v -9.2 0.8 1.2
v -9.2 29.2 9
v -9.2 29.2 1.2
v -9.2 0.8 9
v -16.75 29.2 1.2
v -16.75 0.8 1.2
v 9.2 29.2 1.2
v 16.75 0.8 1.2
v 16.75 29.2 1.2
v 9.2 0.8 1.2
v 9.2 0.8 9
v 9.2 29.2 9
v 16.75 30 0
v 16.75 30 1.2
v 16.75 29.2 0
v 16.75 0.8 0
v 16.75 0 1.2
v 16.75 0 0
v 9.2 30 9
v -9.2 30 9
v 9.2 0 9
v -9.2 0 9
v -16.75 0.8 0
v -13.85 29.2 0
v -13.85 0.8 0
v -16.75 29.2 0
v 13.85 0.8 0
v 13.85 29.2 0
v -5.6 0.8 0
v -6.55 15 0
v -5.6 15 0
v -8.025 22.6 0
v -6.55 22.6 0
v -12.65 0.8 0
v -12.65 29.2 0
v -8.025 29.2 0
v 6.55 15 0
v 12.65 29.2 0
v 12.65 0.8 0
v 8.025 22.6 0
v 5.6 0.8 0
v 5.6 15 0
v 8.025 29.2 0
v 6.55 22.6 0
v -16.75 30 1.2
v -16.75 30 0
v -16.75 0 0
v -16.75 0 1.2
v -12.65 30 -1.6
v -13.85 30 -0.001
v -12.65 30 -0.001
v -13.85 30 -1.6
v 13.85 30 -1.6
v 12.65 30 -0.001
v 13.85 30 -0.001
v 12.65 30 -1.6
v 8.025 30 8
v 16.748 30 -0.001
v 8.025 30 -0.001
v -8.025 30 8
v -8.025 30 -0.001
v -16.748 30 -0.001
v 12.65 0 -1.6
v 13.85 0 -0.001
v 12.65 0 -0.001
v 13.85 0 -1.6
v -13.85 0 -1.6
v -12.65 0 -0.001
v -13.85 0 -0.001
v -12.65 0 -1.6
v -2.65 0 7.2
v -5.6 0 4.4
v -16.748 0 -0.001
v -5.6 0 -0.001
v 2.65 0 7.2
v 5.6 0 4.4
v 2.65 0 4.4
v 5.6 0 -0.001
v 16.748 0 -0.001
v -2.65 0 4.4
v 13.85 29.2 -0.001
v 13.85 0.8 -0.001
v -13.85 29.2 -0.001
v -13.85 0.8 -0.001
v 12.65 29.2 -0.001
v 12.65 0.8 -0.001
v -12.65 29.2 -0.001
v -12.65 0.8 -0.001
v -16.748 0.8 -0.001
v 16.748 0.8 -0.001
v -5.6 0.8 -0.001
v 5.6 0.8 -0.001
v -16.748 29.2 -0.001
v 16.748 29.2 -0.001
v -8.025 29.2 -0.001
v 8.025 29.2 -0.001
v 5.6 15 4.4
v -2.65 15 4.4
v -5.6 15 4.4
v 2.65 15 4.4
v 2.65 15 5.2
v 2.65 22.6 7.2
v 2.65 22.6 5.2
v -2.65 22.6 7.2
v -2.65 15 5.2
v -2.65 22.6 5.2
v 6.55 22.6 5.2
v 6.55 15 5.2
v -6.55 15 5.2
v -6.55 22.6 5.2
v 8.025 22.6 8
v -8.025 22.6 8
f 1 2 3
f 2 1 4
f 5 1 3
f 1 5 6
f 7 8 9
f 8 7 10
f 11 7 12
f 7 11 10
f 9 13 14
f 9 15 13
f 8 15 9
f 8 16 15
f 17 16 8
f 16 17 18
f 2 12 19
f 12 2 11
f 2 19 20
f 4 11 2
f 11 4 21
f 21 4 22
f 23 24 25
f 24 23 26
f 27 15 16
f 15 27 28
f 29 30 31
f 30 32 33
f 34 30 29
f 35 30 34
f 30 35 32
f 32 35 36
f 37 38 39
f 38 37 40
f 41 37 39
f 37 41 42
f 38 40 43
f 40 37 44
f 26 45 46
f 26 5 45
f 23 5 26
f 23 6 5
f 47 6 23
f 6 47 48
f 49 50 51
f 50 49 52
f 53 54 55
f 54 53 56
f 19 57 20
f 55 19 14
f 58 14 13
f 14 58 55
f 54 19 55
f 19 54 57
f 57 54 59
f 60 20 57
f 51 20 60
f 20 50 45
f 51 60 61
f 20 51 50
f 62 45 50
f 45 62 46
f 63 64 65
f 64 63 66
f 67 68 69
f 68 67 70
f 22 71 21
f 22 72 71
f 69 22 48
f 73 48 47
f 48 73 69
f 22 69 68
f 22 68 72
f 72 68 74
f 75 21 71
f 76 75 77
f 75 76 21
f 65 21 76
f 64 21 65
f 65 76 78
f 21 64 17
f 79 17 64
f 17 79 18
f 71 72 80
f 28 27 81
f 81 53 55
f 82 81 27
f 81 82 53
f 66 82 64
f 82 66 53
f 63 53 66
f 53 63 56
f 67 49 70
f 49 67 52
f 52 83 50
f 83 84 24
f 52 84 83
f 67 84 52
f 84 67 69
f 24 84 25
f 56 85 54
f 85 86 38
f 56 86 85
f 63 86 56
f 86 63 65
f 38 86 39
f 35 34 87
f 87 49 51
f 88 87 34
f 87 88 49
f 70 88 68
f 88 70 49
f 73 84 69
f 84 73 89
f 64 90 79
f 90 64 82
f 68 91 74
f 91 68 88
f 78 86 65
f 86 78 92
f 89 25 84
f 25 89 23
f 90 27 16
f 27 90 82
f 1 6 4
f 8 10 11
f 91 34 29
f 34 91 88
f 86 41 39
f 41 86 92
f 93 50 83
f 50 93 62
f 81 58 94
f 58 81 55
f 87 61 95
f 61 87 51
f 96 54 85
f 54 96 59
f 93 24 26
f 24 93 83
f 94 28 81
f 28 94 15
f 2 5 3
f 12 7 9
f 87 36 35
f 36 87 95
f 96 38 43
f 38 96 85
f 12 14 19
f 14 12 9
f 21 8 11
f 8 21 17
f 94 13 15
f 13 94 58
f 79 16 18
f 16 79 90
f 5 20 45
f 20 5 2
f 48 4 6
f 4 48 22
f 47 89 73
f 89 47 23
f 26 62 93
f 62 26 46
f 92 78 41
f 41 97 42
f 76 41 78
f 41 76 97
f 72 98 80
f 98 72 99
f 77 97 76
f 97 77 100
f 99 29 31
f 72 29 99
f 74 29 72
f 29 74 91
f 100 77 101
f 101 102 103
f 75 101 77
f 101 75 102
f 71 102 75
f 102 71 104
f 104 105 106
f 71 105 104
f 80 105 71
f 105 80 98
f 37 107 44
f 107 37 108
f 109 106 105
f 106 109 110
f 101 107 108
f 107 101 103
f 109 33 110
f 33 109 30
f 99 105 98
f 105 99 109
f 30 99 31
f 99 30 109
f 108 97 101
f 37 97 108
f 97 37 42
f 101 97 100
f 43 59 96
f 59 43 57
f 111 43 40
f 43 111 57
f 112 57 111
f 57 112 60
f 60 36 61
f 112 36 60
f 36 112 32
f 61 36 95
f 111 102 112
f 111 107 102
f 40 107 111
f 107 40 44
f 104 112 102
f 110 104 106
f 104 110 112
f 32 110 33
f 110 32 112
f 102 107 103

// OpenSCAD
e=.001;

jig_h=9;
tunnel_w=33.5;
m=.15;
plug_w=12.8;
plug_h=5.2;
plug_d=7.6;
clamp_w=5;
clamp_h=2;
pcb_w=25;
pcb_h=1.6;
front_d=15;
border=1.2;
push_border=.8;

jig_d=30;

conn_w=15.6;
conn_clearance_h=8;
conn_d=10;

module midx_cube(pos)
{
	translate([-pos.x/2, 0, 0])
	cube(pos);
}

module hat()
{
difference()
{
midx_cube([tunnel_w, jig_d, jig_h]);
for (x=[-1,1])
{
	translate([x*19.2,-e,border])
		midx_cube([20,jig_d+1,20]);

}
}

difference()
{
translate([0,0,-pcb_h])
midx_cube([pcb_w+2*m+border*2, jig_d, pcb_h+e]);
translate([0,-e,-pcb_h-e])
midx_cube([pcb_w+2*m, jig_d+2*e, pcb_h+2*e]);

}

}




difference()
{
union()
{
hat();
intersection()
{
hull()hat();
union()
{
translate([0,-e,-e])
midx_cube([tunnel_w+1, push_border+e, jig_h+1]);
translate([0,jig_d-push_border,-e])
midx_cube([tunnel_w+1, push_border+e, jig_h+1]);

}
}
}
translate([0,-e,-e])
{
midx_cube([plug_w-2*push_border,front_d+e*2,plug_h+e-push_border]);
midx_cube([clamp_w+2*m,front_d+plug_d+2*e,clamp_h+plug_h+e]);
}

translate([0, front_d,-e])
{
midx_cube([plug_w+2*m,plug_d+e,plug_h+e]);
}

translate([0, front_d+plug_d,-e])
midx_cube([conn_w+3*m, conn_d, conn_clearance_h+e]);

}
